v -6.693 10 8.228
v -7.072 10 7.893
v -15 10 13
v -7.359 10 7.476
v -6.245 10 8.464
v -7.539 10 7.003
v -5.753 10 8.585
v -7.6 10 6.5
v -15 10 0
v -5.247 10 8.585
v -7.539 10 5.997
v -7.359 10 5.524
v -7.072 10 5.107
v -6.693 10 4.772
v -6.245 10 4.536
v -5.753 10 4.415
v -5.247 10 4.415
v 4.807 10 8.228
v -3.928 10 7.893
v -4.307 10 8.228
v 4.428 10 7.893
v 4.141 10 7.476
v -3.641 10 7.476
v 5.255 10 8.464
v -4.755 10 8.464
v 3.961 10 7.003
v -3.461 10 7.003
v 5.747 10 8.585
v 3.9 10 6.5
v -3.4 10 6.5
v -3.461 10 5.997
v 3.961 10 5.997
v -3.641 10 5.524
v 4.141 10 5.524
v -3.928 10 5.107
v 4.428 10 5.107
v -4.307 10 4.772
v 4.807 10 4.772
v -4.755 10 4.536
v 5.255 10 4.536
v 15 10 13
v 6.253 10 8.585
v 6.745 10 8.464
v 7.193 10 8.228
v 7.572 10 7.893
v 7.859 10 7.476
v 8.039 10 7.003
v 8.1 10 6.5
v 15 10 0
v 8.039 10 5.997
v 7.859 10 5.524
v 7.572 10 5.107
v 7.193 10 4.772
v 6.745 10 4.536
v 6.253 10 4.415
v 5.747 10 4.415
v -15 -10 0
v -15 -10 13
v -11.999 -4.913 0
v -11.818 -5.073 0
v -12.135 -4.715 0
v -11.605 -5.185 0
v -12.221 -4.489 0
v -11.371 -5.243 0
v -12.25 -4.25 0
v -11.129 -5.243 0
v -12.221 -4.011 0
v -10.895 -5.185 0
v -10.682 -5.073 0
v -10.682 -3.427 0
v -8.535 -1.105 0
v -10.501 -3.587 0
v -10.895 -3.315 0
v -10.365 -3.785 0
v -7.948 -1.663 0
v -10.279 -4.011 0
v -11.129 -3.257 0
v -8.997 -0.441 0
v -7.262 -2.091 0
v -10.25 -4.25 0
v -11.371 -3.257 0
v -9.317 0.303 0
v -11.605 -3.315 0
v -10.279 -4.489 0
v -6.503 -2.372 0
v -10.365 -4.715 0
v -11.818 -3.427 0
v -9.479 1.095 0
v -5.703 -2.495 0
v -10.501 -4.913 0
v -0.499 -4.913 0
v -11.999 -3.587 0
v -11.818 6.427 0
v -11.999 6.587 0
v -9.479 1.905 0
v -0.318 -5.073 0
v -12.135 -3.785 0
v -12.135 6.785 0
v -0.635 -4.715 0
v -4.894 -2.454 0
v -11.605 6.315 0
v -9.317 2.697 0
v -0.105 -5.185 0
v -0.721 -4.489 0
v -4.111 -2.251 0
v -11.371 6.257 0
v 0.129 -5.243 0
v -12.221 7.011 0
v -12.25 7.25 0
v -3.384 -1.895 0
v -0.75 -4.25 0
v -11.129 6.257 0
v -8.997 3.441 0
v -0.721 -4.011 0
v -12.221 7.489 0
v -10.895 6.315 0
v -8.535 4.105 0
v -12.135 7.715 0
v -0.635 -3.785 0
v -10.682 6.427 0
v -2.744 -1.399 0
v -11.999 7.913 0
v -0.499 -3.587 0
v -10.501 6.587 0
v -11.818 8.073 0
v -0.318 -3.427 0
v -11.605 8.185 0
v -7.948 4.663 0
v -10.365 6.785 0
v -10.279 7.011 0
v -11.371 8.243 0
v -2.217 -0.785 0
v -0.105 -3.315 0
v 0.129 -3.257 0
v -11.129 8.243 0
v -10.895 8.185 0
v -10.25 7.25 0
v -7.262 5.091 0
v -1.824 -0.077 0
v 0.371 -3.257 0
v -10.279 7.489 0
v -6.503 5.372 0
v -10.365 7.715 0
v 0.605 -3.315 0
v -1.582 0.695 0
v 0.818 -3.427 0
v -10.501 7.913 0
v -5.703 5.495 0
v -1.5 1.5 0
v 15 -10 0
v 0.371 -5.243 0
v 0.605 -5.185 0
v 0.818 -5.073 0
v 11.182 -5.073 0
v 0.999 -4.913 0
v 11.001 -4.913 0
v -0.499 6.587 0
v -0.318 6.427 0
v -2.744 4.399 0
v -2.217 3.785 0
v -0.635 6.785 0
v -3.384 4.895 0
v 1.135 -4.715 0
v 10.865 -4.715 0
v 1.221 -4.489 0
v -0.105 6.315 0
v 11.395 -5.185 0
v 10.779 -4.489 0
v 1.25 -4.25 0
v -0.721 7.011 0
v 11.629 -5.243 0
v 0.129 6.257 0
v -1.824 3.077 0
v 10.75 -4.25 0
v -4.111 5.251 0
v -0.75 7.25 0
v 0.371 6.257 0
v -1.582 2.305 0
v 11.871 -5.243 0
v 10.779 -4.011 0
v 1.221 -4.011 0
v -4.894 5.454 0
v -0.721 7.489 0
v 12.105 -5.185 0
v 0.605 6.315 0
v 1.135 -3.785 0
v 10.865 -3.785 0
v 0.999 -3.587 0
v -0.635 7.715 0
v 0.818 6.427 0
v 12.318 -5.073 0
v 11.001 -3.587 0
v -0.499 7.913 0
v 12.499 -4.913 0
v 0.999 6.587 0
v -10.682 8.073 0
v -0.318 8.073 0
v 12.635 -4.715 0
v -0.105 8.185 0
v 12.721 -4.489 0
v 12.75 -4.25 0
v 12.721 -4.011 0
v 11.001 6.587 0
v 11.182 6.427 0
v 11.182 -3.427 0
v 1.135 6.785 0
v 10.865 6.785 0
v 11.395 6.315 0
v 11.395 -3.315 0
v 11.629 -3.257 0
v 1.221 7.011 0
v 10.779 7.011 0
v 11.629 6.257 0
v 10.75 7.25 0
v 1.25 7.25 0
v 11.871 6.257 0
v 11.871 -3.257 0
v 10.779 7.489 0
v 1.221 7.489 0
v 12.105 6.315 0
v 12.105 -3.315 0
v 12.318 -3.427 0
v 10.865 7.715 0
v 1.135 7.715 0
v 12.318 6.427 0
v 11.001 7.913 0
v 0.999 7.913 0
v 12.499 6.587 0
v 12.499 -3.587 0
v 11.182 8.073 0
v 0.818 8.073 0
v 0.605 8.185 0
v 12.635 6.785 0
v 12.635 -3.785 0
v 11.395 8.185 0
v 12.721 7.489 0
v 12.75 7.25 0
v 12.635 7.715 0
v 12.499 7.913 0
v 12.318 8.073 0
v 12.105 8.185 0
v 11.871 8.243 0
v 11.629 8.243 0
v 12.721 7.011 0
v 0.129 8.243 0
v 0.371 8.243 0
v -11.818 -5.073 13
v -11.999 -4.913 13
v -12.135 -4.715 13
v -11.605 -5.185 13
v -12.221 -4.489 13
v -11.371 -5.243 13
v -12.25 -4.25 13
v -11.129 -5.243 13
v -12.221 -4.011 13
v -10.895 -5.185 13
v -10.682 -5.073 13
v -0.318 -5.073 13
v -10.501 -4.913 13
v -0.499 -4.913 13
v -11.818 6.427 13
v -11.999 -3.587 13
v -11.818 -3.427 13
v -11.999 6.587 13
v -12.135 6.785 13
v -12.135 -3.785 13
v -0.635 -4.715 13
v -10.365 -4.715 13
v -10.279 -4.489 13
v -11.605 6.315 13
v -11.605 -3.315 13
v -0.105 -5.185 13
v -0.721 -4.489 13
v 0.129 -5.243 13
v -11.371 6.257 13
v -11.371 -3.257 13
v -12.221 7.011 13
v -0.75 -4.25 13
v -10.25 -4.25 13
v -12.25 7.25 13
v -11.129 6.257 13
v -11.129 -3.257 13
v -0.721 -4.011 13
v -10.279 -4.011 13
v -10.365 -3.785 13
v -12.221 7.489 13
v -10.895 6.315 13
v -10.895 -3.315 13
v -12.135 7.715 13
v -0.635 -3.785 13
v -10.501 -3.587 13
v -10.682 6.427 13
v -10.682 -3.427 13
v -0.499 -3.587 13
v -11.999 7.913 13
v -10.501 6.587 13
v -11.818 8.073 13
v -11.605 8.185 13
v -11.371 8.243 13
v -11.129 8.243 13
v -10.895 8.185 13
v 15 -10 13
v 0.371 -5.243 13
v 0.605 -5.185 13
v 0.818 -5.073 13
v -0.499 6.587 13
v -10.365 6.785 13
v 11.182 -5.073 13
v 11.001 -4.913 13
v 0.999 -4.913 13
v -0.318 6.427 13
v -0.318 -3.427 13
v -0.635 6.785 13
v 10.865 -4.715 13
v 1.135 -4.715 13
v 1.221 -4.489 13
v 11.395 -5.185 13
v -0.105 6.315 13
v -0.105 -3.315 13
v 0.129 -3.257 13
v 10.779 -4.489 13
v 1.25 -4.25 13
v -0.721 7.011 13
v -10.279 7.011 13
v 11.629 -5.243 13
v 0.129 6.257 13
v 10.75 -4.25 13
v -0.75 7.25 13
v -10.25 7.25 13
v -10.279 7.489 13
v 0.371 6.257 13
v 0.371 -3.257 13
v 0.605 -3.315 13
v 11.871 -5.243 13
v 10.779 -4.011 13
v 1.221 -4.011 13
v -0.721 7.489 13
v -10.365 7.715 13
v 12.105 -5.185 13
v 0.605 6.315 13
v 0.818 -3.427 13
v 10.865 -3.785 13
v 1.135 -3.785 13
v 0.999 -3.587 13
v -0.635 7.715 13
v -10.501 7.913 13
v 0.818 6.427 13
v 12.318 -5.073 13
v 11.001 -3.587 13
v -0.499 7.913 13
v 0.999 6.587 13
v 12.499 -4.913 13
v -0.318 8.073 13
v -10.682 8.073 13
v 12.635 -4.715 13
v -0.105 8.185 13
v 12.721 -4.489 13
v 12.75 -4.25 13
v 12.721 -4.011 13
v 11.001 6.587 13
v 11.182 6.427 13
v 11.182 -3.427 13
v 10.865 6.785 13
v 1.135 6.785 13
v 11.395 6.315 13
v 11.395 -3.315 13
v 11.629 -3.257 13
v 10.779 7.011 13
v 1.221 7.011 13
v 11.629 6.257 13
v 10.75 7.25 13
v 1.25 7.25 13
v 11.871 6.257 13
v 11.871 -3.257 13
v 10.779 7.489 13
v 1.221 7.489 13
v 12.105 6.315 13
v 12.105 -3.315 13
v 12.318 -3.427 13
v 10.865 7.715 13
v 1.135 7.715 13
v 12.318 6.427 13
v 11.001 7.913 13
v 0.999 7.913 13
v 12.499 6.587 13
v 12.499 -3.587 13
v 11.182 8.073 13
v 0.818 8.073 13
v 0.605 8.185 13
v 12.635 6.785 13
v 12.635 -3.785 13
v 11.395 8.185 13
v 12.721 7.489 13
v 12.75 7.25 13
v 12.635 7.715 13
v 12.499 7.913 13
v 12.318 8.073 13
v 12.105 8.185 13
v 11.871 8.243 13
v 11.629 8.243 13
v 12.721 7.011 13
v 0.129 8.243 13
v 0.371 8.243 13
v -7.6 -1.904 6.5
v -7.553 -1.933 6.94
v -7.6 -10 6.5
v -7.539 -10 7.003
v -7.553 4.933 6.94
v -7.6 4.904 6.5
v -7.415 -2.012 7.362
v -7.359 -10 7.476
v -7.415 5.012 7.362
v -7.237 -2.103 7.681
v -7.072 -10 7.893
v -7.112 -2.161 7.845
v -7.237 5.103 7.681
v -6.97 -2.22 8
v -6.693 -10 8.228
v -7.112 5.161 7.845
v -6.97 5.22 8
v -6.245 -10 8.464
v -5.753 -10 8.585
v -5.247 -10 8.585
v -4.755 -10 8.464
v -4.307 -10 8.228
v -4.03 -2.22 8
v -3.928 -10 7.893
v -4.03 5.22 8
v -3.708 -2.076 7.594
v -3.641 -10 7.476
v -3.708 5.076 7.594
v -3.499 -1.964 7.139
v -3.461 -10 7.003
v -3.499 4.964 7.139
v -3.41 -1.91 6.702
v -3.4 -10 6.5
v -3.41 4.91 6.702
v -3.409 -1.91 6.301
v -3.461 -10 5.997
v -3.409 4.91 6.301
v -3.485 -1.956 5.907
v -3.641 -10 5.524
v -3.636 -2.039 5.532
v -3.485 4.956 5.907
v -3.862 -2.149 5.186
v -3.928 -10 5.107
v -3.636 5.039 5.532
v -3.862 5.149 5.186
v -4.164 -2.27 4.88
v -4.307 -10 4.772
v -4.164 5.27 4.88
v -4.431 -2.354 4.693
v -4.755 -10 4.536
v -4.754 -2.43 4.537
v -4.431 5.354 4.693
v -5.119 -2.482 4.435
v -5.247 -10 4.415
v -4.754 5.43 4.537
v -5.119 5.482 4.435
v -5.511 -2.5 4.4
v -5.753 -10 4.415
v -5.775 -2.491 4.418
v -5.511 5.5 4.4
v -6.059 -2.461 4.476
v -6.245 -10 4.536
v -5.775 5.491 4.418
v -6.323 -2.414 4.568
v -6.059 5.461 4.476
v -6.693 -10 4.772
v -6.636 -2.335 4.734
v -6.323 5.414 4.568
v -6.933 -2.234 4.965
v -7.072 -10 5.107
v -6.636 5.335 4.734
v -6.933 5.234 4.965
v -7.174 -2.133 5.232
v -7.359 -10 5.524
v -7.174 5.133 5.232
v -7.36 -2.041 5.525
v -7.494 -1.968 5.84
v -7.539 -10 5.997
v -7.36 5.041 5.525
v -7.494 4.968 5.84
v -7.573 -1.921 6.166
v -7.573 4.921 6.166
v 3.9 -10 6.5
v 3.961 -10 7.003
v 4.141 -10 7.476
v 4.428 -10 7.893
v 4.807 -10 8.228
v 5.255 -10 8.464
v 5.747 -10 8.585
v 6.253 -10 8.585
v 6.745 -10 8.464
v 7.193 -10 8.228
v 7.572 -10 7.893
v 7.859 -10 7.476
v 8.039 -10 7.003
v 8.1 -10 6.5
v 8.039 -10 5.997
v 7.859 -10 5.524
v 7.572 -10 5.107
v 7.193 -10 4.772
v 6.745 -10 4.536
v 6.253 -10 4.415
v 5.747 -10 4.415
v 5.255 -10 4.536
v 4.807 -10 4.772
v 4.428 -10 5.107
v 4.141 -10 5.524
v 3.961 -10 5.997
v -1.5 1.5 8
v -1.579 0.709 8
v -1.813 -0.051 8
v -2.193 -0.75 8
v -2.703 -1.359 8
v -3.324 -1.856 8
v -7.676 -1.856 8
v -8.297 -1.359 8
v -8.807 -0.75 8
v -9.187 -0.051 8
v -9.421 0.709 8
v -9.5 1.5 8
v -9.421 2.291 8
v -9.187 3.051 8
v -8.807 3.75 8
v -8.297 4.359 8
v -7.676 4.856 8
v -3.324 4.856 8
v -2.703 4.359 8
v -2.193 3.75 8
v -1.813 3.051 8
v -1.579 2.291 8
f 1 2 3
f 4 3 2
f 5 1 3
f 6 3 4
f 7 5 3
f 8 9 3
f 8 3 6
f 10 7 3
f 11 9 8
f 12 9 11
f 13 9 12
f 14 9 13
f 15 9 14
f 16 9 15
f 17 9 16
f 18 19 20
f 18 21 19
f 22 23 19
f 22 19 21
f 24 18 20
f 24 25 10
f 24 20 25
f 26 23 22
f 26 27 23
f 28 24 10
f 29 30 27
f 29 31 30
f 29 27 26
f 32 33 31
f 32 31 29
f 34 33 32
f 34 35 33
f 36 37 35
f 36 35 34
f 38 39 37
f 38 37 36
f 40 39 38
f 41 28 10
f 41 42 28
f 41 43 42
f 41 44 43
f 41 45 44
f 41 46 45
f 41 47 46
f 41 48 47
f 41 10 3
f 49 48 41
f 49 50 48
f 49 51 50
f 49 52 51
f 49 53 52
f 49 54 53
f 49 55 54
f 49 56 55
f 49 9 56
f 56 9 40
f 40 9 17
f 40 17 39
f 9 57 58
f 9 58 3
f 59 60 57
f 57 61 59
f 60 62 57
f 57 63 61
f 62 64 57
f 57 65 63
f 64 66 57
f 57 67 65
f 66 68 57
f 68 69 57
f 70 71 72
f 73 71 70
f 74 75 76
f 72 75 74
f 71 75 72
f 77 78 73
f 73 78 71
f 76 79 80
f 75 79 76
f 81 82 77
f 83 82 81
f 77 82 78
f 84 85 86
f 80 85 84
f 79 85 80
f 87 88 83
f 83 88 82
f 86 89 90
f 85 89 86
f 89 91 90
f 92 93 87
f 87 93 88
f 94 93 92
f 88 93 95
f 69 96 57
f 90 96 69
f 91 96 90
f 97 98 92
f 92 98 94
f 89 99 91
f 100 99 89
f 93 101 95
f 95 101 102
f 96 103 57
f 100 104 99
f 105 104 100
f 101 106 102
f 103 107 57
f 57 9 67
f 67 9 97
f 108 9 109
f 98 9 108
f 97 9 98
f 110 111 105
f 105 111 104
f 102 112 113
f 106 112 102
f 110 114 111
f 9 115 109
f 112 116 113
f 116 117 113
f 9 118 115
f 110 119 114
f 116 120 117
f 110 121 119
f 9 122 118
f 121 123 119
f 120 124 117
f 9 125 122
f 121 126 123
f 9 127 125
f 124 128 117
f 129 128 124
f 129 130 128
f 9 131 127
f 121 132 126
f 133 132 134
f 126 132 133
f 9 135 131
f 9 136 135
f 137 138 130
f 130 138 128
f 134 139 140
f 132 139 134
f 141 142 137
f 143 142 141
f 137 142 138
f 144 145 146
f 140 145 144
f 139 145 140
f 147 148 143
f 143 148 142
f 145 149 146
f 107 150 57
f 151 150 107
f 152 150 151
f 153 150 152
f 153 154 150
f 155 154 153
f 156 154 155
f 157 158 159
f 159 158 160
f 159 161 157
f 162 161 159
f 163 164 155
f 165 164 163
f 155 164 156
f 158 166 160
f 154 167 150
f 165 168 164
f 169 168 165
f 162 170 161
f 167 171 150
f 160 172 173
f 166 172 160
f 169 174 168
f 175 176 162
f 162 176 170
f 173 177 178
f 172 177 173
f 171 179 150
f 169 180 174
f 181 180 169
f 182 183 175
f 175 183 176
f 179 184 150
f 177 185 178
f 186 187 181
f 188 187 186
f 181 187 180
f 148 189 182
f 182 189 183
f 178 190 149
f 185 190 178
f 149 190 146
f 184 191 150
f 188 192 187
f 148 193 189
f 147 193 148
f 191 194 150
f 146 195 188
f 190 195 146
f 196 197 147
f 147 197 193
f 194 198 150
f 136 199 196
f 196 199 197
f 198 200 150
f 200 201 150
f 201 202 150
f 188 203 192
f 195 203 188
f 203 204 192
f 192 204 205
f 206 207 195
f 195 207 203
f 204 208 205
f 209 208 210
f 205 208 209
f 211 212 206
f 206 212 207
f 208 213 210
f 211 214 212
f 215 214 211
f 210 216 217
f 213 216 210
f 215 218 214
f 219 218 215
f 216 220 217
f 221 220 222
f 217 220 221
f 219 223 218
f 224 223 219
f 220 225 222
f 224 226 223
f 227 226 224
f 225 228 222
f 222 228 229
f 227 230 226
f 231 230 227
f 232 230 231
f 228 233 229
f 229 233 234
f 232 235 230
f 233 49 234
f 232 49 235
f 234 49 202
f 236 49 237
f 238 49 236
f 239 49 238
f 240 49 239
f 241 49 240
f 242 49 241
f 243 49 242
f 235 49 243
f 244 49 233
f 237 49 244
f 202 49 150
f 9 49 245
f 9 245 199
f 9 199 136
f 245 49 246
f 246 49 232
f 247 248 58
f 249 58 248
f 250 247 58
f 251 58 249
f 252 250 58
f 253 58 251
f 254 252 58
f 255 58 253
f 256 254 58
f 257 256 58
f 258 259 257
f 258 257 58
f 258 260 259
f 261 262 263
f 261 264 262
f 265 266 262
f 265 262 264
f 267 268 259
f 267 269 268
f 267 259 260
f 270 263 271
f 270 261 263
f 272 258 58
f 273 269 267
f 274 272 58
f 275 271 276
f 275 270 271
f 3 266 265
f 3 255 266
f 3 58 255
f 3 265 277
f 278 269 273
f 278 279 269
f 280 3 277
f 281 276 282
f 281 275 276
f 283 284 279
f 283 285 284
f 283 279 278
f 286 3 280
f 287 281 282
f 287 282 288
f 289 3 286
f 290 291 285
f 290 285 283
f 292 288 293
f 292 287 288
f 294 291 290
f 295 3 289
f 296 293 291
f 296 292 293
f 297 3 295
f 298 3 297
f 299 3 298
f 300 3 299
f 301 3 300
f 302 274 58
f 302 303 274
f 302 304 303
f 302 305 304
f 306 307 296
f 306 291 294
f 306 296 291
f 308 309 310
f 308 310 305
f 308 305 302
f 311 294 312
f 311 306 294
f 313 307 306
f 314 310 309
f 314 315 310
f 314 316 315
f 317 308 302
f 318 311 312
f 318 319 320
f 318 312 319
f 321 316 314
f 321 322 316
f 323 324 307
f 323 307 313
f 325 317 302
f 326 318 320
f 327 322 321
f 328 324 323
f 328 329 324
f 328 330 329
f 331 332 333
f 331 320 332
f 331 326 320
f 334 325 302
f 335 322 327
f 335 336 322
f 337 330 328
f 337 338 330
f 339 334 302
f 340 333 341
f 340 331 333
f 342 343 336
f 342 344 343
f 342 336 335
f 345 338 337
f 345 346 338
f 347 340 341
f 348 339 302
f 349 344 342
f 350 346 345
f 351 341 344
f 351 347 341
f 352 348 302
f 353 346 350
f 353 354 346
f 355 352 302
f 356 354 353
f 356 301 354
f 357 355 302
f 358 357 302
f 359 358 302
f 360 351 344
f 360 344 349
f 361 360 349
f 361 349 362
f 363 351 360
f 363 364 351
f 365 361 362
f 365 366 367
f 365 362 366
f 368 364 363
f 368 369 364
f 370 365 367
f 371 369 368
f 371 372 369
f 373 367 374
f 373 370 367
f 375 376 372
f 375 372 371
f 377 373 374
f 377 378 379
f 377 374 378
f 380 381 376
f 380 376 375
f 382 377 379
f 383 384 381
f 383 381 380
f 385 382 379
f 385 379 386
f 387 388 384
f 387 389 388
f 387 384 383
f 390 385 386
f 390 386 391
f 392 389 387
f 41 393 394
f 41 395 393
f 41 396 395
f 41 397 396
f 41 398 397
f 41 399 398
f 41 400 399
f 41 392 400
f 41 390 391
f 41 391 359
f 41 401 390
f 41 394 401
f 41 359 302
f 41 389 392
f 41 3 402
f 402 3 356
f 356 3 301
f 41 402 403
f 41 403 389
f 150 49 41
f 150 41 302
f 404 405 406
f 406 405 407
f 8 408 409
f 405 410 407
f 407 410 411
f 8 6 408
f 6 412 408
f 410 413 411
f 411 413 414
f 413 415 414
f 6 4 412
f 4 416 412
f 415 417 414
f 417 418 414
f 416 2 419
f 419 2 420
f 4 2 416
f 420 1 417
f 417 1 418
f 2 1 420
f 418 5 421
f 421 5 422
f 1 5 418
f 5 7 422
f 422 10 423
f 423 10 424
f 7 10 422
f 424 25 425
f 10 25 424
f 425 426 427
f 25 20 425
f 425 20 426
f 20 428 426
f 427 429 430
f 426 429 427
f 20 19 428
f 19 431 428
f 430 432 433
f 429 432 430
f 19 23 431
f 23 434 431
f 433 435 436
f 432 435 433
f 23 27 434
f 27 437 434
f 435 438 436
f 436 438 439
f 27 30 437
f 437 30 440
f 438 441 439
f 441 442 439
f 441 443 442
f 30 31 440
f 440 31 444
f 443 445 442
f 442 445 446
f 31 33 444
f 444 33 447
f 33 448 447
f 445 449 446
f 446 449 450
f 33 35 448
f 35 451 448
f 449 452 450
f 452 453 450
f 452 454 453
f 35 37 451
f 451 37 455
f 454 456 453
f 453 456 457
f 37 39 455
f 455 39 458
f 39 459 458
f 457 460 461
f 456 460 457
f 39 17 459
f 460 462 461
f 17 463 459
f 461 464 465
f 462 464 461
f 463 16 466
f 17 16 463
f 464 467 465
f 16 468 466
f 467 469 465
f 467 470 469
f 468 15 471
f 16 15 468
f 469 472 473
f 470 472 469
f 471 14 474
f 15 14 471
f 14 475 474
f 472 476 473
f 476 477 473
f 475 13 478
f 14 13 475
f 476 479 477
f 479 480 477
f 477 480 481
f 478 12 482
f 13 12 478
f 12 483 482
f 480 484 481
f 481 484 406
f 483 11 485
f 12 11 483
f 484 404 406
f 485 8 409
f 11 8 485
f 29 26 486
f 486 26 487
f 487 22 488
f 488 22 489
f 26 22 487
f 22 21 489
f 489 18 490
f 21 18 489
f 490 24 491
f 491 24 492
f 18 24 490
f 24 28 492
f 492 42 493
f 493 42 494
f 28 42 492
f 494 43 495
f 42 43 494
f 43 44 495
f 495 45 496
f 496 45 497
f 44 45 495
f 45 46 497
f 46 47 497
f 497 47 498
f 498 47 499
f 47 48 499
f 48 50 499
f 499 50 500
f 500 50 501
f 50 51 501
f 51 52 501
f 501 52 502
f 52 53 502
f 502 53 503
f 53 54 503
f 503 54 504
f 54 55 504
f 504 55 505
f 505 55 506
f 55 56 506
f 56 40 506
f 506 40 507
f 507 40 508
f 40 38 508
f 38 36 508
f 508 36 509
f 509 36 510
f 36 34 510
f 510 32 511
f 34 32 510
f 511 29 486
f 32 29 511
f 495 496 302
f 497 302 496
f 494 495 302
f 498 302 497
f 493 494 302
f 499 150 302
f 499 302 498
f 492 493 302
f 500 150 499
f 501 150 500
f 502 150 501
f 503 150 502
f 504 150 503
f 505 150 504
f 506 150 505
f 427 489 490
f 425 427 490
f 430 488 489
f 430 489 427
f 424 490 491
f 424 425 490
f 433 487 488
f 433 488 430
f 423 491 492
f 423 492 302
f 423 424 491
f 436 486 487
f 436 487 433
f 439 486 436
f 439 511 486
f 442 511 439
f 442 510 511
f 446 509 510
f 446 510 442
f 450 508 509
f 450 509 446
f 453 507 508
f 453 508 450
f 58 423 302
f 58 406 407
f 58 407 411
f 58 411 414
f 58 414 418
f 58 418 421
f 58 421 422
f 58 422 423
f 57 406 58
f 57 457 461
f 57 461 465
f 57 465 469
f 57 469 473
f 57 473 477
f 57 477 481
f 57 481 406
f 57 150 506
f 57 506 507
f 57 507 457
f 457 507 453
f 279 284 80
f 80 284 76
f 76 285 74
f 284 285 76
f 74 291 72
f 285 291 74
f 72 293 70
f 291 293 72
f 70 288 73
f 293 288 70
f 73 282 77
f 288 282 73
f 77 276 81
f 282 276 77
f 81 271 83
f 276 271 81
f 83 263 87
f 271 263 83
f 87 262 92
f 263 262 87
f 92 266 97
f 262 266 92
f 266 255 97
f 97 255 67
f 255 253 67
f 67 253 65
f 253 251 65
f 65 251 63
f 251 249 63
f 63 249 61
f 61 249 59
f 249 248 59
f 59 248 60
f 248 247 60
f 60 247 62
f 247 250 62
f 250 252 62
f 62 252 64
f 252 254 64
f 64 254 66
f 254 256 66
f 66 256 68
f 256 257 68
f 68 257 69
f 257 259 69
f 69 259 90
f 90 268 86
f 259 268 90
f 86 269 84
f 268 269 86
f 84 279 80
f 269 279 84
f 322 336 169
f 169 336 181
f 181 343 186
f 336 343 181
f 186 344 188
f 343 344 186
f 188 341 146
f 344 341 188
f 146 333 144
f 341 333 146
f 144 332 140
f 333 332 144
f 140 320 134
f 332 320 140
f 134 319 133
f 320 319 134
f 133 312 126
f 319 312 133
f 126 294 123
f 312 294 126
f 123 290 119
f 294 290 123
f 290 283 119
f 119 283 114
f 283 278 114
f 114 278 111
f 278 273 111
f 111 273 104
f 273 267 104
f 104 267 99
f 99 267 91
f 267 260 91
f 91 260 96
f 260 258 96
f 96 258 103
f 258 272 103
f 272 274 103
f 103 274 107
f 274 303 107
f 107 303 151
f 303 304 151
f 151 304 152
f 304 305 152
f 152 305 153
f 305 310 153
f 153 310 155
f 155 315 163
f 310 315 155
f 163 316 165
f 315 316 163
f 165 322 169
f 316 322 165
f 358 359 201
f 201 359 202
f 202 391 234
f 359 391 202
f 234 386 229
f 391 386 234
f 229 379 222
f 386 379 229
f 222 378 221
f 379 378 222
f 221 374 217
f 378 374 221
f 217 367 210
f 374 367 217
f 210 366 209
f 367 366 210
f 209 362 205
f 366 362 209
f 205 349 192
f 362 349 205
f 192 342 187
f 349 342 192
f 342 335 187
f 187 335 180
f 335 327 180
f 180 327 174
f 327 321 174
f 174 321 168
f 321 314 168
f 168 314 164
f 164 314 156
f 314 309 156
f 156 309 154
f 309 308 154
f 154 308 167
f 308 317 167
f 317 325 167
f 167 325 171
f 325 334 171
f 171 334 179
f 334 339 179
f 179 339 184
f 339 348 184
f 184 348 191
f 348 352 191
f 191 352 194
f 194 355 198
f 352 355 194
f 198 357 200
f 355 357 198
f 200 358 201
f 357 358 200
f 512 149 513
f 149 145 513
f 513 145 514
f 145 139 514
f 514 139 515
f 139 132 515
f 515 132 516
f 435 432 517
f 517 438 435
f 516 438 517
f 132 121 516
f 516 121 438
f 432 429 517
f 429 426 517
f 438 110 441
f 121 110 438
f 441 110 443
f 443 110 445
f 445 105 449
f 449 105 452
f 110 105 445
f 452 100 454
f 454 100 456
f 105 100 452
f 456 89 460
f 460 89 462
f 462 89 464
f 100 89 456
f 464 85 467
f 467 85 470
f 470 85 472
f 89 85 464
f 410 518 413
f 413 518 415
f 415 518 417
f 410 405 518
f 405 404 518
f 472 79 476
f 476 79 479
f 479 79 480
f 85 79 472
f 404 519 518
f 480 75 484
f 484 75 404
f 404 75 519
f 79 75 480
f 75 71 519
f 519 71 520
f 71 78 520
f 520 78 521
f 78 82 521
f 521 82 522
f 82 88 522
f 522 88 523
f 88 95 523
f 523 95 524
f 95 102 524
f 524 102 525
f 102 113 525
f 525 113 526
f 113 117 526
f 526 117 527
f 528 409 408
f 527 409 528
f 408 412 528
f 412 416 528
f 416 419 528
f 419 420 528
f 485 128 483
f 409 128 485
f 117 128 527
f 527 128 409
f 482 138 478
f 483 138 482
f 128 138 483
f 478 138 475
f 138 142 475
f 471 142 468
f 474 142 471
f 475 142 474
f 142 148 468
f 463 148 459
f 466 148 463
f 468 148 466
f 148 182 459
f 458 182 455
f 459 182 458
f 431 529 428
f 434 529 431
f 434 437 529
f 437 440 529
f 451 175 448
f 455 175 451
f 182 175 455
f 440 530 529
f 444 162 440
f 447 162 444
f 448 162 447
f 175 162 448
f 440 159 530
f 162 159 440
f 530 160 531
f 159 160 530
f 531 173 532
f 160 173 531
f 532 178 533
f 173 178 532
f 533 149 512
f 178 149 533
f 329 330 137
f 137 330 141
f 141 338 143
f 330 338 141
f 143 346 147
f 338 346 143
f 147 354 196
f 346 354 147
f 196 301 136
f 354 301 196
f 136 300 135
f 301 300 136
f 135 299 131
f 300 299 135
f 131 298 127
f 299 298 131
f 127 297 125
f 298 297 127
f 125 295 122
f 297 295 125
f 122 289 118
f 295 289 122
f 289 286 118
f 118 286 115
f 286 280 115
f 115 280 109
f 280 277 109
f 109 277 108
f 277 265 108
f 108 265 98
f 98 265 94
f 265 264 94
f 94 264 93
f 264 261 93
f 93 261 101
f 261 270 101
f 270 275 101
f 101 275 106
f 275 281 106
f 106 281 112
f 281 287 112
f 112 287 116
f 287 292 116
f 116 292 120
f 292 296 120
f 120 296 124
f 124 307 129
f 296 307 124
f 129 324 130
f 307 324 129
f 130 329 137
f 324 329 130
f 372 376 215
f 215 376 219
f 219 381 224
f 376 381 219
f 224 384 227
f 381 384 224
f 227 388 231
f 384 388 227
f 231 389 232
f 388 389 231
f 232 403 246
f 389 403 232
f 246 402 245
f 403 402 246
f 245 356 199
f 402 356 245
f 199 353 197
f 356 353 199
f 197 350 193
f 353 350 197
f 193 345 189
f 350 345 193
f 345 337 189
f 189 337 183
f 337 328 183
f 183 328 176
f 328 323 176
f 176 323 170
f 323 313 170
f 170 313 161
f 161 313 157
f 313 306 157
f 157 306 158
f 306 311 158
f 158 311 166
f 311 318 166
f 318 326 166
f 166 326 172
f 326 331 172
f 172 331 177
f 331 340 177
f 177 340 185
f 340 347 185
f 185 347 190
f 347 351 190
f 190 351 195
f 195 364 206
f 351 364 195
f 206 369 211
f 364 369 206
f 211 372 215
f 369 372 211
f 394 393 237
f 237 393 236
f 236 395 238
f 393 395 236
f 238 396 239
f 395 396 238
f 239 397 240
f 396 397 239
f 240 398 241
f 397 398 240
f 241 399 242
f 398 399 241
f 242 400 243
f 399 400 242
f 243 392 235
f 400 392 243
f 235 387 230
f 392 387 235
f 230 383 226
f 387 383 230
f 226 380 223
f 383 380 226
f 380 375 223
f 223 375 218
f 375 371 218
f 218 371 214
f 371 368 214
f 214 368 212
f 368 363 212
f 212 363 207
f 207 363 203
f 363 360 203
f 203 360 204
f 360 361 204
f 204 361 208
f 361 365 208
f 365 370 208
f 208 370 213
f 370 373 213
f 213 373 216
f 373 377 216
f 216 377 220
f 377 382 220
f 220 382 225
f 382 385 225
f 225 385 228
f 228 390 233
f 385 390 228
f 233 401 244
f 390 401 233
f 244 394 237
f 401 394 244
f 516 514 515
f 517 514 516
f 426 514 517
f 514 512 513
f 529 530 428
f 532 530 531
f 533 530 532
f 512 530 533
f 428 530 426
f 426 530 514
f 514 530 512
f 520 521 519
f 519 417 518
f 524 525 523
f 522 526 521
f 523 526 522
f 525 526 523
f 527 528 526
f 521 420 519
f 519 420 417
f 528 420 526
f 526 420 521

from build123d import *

# Parameters (mm, degrees)
SKETCH_W        = 30
SKETCH_H        = 20
PAD_DEPTH       = 13
SKETCH001_R     = 1
POCKET_DEPTH    = 13.001
SKETCH002_R     = 4
POCKET001_DEPTH = 8
SKETCH003_R     = 2.1
POCKET002_DEPTH = 20.001


with BuildPart() as part:
    # Sketch → Pad (new body)
    with BuildSketch(Plane.XY):
        Rectangle(SKETCH_W, SKETCH_H)
    extrude(amount=PAD_DEPTH)

    # Sketch001 (on Face6 of Pad) → Pocket (cut, through all)
    with BuildSketch(Plane.XY.offset(13)):
        with Locations((-11.25, 7.25)):
            Circle(SKETCH001_R)
        with Locations((0.25, 7.25)):
            Circle(SKETCH001_R)
        with Locations((-11.25, -4.25)):
            Circle(SKETCH001_R)
        with Locations((0.25, -4.25)):
            Circle(SKETCH001_R)
        with Locations((11.75, 7.25)):
            Circle(SKETCH001_R)
        with Locations((11.75, -4.25)):
            Circle(SKETCH001_R)
    extrude(amount=-POCKET_DEPTH, mode=Mode.SUBTRACT)

    # Sketch002 (on Face4 of Pocket) → Pocket001 (cut)
    with BuildSketch(Plane(origin=(0, 0, 0), x_dir=(1, 0, 0), z_dir=(0, 0, -1))):
        with Locations((-5.5, -1.5)):
            Circle(SKETCH002_R)
    extrude(amount=-POCKET001_DEPTH, mode=Mode.SUBTRACT)

    # Sketch003 (on Face1 of Pocket001) → Pocket002 (cut, through all)
    with BuildSketch(Plane(origin=(0, 10, 0), x_dir=(-1, 0, 0), z_dir=(0, 1, 0))):
        with Locations((5.5, 6.5)):
            Circle(SKETCH003_R)
        with Locations((-6, 6.5)):
            Circle(SKETCH003_R)
    extrude(amount=-POCKET002_DEPTH, mode=Mode.SUBTRACT)


solid = part.part
